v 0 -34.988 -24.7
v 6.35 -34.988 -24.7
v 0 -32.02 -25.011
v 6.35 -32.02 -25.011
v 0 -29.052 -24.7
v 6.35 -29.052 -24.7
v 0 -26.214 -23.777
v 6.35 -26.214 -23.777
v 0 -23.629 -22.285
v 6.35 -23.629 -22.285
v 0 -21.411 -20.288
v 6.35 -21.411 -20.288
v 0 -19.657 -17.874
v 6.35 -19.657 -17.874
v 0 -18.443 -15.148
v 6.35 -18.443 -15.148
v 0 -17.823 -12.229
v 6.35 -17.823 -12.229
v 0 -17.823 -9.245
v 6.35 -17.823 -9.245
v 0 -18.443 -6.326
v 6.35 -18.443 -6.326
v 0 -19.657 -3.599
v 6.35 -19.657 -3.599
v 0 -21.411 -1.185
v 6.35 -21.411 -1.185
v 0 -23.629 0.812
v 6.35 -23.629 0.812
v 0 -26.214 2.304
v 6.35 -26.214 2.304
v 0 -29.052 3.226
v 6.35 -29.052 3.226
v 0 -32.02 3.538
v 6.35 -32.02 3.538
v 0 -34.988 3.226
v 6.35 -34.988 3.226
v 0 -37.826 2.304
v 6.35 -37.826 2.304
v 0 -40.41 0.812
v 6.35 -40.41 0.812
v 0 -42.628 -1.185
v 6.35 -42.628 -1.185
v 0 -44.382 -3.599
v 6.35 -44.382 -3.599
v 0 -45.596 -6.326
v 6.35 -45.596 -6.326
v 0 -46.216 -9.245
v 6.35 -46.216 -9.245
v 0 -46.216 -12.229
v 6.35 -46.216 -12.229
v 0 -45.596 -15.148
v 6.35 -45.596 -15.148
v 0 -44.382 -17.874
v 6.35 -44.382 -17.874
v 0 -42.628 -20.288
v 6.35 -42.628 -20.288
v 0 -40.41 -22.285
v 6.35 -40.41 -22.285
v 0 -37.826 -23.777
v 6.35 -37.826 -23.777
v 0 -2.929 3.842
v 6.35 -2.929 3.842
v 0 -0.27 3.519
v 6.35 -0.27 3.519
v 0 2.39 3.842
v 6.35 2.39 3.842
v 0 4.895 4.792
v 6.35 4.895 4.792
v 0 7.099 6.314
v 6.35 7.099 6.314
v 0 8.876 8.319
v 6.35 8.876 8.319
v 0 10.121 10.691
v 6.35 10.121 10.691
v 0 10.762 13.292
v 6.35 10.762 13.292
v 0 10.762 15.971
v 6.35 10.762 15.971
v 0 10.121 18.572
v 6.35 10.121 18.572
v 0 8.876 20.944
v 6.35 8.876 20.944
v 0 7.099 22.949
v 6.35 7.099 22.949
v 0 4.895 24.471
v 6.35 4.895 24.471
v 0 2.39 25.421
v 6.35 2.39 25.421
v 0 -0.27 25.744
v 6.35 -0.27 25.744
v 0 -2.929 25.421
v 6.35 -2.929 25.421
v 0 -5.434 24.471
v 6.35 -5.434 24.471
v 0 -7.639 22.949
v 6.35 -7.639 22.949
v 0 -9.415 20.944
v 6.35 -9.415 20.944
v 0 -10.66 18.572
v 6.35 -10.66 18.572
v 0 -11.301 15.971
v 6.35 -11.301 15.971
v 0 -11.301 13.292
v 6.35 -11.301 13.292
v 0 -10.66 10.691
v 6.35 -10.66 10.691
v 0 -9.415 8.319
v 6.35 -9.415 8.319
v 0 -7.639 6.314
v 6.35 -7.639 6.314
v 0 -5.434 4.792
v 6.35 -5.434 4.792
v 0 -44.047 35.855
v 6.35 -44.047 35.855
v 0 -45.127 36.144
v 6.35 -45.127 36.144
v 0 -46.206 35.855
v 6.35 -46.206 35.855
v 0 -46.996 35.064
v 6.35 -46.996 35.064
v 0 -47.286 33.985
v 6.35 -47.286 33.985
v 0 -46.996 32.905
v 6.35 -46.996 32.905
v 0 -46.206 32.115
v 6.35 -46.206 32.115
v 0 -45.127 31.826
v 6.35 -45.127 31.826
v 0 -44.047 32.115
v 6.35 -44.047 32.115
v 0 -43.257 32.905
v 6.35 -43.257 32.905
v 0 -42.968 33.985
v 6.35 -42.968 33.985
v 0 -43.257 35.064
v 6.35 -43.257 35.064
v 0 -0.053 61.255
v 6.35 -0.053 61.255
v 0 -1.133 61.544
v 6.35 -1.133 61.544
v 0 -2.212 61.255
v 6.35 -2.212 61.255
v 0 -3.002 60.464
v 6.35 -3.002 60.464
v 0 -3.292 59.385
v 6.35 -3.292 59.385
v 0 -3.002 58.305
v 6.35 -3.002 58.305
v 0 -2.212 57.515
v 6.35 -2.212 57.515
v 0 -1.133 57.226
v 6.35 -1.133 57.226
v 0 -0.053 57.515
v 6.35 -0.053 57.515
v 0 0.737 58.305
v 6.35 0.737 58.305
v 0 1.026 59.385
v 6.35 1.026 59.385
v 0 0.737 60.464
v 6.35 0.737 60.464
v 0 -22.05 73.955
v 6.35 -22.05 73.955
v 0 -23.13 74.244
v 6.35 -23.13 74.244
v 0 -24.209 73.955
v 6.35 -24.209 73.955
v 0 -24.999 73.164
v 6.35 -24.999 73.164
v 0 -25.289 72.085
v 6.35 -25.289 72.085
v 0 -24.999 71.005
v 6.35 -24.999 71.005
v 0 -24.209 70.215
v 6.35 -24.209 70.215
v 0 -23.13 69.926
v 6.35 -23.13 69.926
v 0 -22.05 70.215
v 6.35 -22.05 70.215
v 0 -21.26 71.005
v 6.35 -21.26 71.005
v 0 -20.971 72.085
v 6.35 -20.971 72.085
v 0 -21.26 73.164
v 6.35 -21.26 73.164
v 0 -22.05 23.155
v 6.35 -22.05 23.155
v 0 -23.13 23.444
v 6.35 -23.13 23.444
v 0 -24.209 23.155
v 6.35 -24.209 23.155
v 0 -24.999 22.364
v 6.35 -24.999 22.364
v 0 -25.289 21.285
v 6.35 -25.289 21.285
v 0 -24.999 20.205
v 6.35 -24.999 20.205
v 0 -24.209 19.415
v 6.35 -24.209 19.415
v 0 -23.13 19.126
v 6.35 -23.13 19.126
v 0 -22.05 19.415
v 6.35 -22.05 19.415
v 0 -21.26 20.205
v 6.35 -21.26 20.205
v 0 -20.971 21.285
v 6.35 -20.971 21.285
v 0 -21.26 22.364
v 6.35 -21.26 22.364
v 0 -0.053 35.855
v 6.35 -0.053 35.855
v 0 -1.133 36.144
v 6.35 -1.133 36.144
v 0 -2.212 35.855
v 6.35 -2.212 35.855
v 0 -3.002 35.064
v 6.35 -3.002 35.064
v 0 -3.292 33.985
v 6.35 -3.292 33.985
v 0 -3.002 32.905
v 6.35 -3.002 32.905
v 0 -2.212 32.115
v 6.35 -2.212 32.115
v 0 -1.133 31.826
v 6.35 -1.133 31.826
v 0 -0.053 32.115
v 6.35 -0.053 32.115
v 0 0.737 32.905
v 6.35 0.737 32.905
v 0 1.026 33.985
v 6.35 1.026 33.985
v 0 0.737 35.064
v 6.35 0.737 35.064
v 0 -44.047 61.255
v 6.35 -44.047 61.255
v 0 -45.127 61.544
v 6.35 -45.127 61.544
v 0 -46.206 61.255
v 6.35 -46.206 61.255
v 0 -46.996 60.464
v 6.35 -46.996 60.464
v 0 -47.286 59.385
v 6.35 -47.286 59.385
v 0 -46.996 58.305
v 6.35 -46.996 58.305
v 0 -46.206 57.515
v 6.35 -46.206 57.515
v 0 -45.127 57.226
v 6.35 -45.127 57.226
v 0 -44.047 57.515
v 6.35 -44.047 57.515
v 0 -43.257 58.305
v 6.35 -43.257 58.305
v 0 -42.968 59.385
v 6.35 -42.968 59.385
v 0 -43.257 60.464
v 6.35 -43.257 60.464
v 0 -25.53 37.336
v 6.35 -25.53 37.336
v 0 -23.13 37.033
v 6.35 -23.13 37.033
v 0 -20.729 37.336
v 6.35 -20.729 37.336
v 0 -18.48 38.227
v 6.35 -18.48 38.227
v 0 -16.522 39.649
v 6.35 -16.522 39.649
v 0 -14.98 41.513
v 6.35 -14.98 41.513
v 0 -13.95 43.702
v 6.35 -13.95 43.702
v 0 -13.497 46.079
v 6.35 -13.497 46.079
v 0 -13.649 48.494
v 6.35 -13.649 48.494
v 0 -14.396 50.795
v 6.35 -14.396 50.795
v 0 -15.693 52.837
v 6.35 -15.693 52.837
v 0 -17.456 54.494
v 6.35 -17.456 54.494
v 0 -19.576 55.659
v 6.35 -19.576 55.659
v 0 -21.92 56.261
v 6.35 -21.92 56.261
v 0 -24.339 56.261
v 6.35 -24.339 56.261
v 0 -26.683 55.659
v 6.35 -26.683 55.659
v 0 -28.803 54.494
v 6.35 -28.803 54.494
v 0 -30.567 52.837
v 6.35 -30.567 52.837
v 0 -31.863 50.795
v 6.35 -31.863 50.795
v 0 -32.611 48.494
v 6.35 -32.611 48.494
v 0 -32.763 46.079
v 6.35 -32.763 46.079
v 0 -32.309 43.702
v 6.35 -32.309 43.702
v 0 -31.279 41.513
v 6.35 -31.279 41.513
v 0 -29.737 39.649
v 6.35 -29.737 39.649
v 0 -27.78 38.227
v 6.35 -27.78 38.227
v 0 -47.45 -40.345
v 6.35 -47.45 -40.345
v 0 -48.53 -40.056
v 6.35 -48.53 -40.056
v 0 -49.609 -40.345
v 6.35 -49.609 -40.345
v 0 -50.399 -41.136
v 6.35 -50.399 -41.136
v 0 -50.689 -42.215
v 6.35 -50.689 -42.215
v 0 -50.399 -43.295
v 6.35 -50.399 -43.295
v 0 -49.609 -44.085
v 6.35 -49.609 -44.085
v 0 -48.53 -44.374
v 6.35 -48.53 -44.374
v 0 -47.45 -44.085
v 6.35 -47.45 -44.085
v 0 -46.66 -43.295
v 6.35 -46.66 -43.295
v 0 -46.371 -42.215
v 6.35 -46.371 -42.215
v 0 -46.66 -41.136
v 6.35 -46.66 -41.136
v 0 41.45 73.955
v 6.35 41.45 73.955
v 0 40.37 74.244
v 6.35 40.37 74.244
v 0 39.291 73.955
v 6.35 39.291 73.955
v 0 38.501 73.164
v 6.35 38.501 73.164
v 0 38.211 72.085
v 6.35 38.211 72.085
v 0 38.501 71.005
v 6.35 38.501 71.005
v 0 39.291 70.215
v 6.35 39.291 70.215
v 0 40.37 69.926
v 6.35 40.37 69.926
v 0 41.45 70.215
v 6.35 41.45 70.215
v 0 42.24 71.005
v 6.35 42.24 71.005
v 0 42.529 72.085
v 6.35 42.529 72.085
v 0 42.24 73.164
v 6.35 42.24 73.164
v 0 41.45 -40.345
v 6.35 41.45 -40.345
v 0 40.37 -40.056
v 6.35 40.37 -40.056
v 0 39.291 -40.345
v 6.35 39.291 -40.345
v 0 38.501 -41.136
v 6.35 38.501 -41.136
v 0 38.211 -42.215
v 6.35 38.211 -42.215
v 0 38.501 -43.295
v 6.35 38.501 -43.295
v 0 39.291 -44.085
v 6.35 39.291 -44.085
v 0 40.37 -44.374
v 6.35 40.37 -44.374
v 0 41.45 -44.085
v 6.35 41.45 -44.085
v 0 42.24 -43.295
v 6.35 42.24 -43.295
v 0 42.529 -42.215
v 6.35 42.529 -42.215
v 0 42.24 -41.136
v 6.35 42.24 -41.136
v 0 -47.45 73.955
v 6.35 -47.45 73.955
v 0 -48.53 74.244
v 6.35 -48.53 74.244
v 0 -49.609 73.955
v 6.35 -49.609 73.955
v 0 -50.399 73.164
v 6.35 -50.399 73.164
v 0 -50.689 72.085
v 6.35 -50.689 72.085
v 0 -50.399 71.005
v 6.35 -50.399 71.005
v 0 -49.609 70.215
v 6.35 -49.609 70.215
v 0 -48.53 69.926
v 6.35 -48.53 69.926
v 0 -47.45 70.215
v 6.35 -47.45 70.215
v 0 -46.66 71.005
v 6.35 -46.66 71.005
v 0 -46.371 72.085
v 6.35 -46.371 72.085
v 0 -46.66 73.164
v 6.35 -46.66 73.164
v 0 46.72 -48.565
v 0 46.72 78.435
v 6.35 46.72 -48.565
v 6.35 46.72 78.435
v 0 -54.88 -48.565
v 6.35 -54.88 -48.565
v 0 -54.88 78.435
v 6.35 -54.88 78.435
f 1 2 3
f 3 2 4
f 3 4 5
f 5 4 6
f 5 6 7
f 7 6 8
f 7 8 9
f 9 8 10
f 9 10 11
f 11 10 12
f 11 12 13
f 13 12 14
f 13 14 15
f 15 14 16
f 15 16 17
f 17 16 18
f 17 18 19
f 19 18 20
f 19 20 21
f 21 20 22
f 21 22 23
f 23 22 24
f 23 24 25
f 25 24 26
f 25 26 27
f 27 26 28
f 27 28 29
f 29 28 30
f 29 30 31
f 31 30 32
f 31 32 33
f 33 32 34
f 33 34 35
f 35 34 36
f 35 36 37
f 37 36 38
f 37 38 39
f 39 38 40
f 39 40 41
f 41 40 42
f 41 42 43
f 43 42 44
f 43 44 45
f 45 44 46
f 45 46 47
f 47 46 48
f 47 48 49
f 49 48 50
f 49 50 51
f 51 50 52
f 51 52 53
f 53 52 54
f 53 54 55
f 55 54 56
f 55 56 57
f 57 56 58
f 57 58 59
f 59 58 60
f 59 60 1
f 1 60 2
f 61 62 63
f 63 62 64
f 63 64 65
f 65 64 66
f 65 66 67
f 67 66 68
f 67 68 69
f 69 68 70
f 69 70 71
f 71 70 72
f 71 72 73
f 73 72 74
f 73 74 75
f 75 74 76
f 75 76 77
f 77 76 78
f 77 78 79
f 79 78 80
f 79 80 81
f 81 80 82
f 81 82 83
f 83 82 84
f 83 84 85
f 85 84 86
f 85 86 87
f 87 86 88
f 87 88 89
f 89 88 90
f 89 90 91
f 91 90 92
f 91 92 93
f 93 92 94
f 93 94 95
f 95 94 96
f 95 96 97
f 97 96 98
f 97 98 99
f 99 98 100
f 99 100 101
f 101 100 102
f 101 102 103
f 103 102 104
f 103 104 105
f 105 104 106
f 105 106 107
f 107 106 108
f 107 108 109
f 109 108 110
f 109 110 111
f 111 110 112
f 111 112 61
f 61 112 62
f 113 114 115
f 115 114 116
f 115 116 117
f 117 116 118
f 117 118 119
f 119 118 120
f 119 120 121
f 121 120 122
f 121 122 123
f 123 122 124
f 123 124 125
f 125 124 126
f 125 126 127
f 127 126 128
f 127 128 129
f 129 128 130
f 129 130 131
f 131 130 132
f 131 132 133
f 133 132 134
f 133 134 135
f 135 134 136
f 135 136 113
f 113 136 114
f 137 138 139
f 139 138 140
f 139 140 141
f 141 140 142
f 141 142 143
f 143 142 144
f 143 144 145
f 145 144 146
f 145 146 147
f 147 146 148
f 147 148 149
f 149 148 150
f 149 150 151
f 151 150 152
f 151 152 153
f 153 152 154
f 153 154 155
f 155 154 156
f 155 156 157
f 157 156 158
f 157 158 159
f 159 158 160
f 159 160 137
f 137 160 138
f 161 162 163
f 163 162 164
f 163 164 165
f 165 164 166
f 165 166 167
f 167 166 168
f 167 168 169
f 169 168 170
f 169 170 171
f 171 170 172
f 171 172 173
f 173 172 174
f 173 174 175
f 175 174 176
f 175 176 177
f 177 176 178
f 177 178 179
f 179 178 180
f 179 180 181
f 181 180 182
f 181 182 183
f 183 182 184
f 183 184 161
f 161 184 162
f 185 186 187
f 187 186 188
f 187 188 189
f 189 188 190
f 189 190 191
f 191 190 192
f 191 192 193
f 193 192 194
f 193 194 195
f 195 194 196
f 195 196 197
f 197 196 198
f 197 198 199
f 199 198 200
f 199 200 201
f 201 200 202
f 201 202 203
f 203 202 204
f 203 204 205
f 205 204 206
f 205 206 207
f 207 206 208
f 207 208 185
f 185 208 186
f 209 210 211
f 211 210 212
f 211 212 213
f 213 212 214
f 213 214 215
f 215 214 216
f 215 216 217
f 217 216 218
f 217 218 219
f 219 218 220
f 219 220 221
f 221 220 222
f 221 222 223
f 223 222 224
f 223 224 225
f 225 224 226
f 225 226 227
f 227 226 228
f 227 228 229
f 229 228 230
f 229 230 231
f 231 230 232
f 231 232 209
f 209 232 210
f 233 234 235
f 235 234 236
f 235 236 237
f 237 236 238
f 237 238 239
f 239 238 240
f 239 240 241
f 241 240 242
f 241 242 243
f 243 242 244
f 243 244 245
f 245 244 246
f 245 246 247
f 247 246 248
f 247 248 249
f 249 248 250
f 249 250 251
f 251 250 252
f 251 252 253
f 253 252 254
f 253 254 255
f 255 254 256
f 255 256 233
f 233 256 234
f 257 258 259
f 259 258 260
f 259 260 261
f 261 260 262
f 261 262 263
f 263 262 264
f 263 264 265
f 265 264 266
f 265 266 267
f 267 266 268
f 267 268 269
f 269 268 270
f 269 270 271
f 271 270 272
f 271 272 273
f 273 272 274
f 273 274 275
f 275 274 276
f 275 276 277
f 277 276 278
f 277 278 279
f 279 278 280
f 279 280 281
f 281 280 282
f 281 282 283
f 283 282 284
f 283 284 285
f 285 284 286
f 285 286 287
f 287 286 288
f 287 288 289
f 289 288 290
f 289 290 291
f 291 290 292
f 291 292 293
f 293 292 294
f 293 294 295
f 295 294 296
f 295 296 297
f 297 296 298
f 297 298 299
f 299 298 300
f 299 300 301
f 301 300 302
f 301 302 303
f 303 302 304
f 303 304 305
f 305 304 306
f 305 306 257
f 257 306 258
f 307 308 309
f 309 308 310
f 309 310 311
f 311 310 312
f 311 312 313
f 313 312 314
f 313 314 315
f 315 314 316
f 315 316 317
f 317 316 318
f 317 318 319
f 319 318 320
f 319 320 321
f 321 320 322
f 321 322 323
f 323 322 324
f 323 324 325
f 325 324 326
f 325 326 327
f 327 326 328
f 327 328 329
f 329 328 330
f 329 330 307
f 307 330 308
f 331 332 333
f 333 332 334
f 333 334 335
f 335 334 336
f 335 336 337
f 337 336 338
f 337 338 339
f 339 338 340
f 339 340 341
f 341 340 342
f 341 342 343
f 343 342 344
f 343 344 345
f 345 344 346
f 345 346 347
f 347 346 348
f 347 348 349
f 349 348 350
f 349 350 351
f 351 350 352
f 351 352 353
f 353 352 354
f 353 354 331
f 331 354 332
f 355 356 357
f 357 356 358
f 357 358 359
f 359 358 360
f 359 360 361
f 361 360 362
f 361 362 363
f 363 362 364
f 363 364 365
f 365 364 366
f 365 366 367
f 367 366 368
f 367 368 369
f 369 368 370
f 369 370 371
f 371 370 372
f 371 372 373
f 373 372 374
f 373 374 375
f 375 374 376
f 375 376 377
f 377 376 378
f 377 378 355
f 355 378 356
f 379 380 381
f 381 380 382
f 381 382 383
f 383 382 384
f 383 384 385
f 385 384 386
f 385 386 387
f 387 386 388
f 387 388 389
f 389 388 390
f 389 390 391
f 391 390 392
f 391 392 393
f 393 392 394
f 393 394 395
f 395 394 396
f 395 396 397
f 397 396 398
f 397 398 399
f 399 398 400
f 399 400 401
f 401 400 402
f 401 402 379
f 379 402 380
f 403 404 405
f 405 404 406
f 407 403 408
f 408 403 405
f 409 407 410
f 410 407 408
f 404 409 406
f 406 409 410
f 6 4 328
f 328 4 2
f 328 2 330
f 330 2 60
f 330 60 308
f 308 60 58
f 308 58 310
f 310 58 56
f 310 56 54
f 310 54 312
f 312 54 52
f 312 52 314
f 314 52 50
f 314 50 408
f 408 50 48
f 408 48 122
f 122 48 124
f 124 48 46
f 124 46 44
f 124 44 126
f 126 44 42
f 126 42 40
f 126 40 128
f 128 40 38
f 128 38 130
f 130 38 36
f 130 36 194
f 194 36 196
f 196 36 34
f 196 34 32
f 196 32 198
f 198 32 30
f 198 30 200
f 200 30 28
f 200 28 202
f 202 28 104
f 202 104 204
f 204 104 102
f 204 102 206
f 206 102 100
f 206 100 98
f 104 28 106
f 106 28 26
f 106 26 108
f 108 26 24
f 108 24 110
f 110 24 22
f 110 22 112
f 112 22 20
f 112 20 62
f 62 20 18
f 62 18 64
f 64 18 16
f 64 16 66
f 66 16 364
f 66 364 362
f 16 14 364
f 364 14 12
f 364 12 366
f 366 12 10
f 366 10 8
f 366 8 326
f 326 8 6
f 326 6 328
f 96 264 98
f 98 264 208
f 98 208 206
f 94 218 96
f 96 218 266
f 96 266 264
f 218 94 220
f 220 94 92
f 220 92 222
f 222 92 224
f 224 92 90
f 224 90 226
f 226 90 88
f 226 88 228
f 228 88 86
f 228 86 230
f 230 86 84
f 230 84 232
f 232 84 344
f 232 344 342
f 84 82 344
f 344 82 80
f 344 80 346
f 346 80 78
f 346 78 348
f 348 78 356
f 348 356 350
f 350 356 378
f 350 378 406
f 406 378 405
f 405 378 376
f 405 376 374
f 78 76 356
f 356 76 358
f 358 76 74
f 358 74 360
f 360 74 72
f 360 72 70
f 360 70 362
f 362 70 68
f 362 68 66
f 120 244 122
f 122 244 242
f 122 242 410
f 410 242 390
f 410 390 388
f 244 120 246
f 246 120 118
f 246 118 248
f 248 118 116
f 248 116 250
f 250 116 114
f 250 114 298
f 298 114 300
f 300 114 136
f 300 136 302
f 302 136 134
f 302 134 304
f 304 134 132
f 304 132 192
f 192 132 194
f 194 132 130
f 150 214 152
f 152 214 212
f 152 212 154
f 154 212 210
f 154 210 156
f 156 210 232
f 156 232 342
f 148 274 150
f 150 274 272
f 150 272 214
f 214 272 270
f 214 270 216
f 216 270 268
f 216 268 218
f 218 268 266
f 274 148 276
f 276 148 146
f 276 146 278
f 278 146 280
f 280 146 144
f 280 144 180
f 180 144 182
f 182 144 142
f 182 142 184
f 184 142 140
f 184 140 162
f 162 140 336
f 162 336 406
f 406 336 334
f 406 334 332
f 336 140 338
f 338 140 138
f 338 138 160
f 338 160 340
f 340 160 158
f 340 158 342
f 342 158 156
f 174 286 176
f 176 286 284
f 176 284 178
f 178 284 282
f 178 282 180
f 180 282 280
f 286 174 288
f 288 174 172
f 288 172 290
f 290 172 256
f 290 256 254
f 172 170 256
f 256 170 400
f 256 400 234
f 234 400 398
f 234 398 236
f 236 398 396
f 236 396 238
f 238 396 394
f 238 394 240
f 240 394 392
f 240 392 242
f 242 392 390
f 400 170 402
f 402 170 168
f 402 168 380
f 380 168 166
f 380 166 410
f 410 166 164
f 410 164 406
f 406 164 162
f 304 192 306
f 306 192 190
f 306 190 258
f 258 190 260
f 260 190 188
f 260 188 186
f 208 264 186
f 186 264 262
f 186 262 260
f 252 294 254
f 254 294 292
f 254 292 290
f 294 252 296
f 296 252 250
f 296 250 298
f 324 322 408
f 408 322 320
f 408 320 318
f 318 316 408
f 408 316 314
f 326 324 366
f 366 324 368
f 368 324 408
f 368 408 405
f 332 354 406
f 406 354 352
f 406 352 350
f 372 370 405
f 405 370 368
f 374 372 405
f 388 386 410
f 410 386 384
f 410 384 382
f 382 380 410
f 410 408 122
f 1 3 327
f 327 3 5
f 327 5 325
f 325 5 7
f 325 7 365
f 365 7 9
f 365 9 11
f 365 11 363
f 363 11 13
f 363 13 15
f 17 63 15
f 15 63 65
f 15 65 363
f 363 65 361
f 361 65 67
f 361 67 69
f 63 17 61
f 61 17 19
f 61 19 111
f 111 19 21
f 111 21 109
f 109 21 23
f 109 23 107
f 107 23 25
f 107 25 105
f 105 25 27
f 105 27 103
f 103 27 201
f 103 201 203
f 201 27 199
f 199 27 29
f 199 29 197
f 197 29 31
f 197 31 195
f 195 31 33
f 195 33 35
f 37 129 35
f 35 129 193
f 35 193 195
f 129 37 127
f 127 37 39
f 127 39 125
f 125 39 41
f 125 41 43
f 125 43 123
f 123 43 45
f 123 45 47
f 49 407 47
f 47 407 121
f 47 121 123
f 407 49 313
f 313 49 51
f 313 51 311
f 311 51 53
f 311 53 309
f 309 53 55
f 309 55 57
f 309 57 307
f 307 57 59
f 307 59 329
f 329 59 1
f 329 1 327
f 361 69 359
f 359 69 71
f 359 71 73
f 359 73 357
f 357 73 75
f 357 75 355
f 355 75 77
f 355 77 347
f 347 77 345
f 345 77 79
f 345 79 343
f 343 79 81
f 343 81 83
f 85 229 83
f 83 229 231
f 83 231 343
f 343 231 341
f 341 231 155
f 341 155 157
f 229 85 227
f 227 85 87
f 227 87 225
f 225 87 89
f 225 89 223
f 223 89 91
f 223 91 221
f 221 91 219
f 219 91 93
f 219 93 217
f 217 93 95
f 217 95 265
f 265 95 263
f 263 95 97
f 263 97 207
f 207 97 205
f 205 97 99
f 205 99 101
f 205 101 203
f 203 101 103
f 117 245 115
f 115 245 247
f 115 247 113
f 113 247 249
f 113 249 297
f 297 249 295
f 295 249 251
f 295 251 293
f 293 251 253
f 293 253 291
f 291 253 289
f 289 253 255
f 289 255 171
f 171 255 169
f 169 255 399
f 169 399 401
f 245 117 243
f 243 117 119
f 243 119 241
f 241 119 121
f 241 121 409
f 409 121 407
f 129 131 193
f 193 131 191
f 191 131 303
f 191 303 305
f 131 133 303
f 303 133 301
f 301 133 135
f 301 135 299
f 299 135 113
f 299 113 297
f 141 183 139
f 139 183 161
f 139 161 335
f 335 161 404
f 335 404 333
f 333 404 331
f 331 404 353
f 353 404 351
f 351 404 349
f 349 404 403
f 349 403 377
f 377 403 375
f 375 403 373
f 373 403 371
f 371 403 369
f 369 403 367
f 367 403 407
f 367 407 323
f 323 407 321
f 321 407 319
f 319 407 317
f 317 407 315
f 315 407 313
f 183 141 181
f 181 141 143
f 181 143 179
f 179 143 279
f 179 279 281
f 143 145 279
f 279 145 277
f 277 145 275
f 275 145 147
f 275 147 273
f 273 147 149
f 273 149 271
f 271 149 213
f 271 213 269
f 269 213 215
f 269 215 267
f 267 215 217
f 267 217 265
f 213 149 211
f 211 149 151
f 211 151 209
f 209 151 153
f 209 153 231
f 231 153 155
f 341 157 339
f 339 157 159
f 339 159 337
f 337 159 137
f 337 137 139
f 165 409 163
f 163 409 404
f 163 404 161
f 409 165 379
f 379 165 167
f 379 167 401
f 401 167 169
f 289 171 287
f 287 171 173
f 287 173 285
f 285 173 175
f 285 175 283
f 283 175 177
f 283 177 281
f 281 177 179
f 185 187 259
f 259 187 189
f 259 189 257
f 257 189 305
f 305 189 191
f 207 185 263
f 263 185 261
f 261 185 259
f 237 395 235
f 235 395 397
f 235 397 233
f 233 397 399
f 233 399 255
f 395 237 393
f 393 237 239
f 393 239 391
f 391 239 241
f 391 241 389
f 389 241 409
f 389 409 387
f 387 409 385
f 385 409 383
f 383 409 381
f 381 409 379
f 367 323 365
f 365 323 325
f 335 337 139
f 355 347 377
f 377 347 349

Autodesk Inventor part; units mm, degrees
ref_plane "YZ Plane" through (0, 0, 0) normal (1, 0, 0) x (0, 1, 0)
ref_plane "XZ Plane" through (0, 0, 0) normal (0, 1, 0) x (-1, 0, 0)
ref_plane "XY Plane" through (0, 0, 0) normal (0, 0, 1) x (1, 0, 0)
sketch "Sketch1" plane through (0, 0, 0) normal (1, 0, 0) x (0, 1, 0)
  line L0 (46.7204, 78.4349) -> (-54.8796, 78.4349)
  line L1 (-54.8796, 78.4349) -> (-54.8796, -48.5651)
  line L2 (-54.8796, -48.5651) -> (46.7204, -48.5651)
  line L3 (46.7204, -48.5651) -> (46.7204, 78.4349)
  point P0 (0, 0)
  dimension "d0" = 127
  dimension "d1" = 101.6
extrude "Extrusion1" add sketch "Sketch1" along normal blind 6.35
sketch "Sketch2" plane through (6.35, 0, 0) normal (1, 0, 0) x (0, 0, -1)
  line L0 (48.5651, 46.7204) -> (-78.4349, 46.7204) projected
  line L1 (-78.4349, 46.7204) -> (-78.4349, -54.8796) projected
  line L2 (-78.4349, -54.8796) -> (48.5651, -54.8796) projected
  line L3 (48.5651, -54.8796) -> (48.5651, 46.7204) projected
  point P0 (0, 0)
  point P1 (-72.0849, 40.3704)
  point P2 (42.2151, 40.3704)
  point P3 (42.2151, -48.5296)
  point P4 (-72.0849, -48.5296)
  dimension "d4" = 0
  dimension "d5" = 0
  dimension "d6" = 0
  dimension "d7" = 0
  dimension "d8" = 6.35
  dimension "d9" = 6.35
  dimension "d10" = 6.35
  dimension "d11" = 6.35
hole "Hole1" at (6.35, 40.3704, 72.0849) at (6.35, 40.3704, -42.2151) at (6.35, -48.5296, -42.2151) at (6.35, -48.5296, 72.0849) direction (-1, 0, 0) diameter 4.318 end through all
sketch "Sketch3" plane through (6.35, 0, 0) normal (1, 0, 0) x (0, 0, -1)
  circle A0 centre (-46.6849, -23.1296) radius 9.652
  line L0 (-78.4349, -54.8796) -> (48.5651, -54.8796) projected
  line L1 (-78.4349, 46.7204) -> (-78.4349, -54.8796) projected
  point P0 (0, 0)
  dimension "d19" = 19.304
  dimension "d20" = 31.75
  dimension "d21" = 31.75
extrude "Extrusion2" cut sketch "Sketch3" against normal blind 61.9125
sketch "Sketch4" plane through (6.35, 0, 0) normal (1, 0, 0) x (0, 0, -1)
  circle A0 centre (-46.6849, -23.1296) radius 9.652 projected
  circle A1 centre (-46.6849, -23.1296) radius 9.652 projected
  circle A2 centre (-46.6849, -23.1296) radius 25.4
  line L0 (-46.6849, -23.1296) -> (-105.0514, -23.1296)
  line L1 (-46.6849, -23.1296) -> (-64.9089, 8.4353)
  line L2 (-46.6849, -23.1296) -> (-26.8908, 11.1548)
  line L3 (-46.6849, -23.1296) -> (1.7612, -23.1296)
  line L4 (-46.6849, -23.1296) -> (-29.0867, -53.6105)
  line L5 (-46.6849, -23.1296) -> (-67.8043, -59.7094)
  point P0 (0, 0)
  point P1 (-72.0849, -23.1296)
  point P2 (-21.2849, -23.1296)
  point P3 (-59.3849, -1.1326)
  point P4 (-33.9849, -1.1326)
  point P5 (-33.9849, -45.1267)
  point P6 (-59.3849, -45.1267)
  dimension "d24" = 50.8
  dimension "d25" = 60
  dimension "d26" = 60
  dimension "d27" = 60
  dimension "d28" = 60
hole "Hole2" at (6.35, -23.1296, 72.0849) at (6.35, -23.1296, 21.2849) at (6.35, -1.1326, 59.3849) at (6.35, -1.1326, 33.9849) at (6.35, -45.1267, 33.9849) at (6.35, -45.1267, 59.3849) direction (-1, 0, 0) diameter 4.318 end through all
sketch "Sketch5" plane through (6.35, 0, 0) normal (1, 0, 0) x (0, 0, -1)
  circle A0 centre (-14.6316, -0.2696) radius 11.1125
  circle A1 centre (-46.6849, -23.1296) radius 9.652 projected
  circle A2 centre (-46.6849, -23.1296) radius 39.37
  point P0 (0, 0)
  dimension "d37" = 78.74
  dimension "d36" = 22.225
  dimension "d44" = 22.86
extrude "Extrusion3" cut sketch "Sketch5" against normal blind 66.675 contours A0 A2 | A2 A0 picked at (-11.8926, 2.0476) picked at (-17.7425, -2.4882)
sketch "Sketch6" plane through (6.35, 0, 0) normal (1, 0, 0) x (0, 0, -1)
  circle A0 centre (-14.6316, -0.2696) radius 11.1125 projected
  circle A1 centre (-14.6316, -0.2696) radius 40.64
  circle A2 centre (10.7367, -32.0196) radius 14.2748
  line L0 (48.5651, 46.7204) -> (-78.4349, 46.7204) projected
  point P0 (0, 0)
  dimension "d43" = 81.28
  dimension "d40" = 28.5496
  dimension "d76" = 78.74
extrude "Extrusion4" cut sketch "Sketch6" against normal blind 39.6875 contours A2 A1 | A1 A2 picked at (11.4749, -25.7156) picked at (9.3568, -38.0591)
properties part number "OutsideMotorPlate" material "Aluminum 6061"
